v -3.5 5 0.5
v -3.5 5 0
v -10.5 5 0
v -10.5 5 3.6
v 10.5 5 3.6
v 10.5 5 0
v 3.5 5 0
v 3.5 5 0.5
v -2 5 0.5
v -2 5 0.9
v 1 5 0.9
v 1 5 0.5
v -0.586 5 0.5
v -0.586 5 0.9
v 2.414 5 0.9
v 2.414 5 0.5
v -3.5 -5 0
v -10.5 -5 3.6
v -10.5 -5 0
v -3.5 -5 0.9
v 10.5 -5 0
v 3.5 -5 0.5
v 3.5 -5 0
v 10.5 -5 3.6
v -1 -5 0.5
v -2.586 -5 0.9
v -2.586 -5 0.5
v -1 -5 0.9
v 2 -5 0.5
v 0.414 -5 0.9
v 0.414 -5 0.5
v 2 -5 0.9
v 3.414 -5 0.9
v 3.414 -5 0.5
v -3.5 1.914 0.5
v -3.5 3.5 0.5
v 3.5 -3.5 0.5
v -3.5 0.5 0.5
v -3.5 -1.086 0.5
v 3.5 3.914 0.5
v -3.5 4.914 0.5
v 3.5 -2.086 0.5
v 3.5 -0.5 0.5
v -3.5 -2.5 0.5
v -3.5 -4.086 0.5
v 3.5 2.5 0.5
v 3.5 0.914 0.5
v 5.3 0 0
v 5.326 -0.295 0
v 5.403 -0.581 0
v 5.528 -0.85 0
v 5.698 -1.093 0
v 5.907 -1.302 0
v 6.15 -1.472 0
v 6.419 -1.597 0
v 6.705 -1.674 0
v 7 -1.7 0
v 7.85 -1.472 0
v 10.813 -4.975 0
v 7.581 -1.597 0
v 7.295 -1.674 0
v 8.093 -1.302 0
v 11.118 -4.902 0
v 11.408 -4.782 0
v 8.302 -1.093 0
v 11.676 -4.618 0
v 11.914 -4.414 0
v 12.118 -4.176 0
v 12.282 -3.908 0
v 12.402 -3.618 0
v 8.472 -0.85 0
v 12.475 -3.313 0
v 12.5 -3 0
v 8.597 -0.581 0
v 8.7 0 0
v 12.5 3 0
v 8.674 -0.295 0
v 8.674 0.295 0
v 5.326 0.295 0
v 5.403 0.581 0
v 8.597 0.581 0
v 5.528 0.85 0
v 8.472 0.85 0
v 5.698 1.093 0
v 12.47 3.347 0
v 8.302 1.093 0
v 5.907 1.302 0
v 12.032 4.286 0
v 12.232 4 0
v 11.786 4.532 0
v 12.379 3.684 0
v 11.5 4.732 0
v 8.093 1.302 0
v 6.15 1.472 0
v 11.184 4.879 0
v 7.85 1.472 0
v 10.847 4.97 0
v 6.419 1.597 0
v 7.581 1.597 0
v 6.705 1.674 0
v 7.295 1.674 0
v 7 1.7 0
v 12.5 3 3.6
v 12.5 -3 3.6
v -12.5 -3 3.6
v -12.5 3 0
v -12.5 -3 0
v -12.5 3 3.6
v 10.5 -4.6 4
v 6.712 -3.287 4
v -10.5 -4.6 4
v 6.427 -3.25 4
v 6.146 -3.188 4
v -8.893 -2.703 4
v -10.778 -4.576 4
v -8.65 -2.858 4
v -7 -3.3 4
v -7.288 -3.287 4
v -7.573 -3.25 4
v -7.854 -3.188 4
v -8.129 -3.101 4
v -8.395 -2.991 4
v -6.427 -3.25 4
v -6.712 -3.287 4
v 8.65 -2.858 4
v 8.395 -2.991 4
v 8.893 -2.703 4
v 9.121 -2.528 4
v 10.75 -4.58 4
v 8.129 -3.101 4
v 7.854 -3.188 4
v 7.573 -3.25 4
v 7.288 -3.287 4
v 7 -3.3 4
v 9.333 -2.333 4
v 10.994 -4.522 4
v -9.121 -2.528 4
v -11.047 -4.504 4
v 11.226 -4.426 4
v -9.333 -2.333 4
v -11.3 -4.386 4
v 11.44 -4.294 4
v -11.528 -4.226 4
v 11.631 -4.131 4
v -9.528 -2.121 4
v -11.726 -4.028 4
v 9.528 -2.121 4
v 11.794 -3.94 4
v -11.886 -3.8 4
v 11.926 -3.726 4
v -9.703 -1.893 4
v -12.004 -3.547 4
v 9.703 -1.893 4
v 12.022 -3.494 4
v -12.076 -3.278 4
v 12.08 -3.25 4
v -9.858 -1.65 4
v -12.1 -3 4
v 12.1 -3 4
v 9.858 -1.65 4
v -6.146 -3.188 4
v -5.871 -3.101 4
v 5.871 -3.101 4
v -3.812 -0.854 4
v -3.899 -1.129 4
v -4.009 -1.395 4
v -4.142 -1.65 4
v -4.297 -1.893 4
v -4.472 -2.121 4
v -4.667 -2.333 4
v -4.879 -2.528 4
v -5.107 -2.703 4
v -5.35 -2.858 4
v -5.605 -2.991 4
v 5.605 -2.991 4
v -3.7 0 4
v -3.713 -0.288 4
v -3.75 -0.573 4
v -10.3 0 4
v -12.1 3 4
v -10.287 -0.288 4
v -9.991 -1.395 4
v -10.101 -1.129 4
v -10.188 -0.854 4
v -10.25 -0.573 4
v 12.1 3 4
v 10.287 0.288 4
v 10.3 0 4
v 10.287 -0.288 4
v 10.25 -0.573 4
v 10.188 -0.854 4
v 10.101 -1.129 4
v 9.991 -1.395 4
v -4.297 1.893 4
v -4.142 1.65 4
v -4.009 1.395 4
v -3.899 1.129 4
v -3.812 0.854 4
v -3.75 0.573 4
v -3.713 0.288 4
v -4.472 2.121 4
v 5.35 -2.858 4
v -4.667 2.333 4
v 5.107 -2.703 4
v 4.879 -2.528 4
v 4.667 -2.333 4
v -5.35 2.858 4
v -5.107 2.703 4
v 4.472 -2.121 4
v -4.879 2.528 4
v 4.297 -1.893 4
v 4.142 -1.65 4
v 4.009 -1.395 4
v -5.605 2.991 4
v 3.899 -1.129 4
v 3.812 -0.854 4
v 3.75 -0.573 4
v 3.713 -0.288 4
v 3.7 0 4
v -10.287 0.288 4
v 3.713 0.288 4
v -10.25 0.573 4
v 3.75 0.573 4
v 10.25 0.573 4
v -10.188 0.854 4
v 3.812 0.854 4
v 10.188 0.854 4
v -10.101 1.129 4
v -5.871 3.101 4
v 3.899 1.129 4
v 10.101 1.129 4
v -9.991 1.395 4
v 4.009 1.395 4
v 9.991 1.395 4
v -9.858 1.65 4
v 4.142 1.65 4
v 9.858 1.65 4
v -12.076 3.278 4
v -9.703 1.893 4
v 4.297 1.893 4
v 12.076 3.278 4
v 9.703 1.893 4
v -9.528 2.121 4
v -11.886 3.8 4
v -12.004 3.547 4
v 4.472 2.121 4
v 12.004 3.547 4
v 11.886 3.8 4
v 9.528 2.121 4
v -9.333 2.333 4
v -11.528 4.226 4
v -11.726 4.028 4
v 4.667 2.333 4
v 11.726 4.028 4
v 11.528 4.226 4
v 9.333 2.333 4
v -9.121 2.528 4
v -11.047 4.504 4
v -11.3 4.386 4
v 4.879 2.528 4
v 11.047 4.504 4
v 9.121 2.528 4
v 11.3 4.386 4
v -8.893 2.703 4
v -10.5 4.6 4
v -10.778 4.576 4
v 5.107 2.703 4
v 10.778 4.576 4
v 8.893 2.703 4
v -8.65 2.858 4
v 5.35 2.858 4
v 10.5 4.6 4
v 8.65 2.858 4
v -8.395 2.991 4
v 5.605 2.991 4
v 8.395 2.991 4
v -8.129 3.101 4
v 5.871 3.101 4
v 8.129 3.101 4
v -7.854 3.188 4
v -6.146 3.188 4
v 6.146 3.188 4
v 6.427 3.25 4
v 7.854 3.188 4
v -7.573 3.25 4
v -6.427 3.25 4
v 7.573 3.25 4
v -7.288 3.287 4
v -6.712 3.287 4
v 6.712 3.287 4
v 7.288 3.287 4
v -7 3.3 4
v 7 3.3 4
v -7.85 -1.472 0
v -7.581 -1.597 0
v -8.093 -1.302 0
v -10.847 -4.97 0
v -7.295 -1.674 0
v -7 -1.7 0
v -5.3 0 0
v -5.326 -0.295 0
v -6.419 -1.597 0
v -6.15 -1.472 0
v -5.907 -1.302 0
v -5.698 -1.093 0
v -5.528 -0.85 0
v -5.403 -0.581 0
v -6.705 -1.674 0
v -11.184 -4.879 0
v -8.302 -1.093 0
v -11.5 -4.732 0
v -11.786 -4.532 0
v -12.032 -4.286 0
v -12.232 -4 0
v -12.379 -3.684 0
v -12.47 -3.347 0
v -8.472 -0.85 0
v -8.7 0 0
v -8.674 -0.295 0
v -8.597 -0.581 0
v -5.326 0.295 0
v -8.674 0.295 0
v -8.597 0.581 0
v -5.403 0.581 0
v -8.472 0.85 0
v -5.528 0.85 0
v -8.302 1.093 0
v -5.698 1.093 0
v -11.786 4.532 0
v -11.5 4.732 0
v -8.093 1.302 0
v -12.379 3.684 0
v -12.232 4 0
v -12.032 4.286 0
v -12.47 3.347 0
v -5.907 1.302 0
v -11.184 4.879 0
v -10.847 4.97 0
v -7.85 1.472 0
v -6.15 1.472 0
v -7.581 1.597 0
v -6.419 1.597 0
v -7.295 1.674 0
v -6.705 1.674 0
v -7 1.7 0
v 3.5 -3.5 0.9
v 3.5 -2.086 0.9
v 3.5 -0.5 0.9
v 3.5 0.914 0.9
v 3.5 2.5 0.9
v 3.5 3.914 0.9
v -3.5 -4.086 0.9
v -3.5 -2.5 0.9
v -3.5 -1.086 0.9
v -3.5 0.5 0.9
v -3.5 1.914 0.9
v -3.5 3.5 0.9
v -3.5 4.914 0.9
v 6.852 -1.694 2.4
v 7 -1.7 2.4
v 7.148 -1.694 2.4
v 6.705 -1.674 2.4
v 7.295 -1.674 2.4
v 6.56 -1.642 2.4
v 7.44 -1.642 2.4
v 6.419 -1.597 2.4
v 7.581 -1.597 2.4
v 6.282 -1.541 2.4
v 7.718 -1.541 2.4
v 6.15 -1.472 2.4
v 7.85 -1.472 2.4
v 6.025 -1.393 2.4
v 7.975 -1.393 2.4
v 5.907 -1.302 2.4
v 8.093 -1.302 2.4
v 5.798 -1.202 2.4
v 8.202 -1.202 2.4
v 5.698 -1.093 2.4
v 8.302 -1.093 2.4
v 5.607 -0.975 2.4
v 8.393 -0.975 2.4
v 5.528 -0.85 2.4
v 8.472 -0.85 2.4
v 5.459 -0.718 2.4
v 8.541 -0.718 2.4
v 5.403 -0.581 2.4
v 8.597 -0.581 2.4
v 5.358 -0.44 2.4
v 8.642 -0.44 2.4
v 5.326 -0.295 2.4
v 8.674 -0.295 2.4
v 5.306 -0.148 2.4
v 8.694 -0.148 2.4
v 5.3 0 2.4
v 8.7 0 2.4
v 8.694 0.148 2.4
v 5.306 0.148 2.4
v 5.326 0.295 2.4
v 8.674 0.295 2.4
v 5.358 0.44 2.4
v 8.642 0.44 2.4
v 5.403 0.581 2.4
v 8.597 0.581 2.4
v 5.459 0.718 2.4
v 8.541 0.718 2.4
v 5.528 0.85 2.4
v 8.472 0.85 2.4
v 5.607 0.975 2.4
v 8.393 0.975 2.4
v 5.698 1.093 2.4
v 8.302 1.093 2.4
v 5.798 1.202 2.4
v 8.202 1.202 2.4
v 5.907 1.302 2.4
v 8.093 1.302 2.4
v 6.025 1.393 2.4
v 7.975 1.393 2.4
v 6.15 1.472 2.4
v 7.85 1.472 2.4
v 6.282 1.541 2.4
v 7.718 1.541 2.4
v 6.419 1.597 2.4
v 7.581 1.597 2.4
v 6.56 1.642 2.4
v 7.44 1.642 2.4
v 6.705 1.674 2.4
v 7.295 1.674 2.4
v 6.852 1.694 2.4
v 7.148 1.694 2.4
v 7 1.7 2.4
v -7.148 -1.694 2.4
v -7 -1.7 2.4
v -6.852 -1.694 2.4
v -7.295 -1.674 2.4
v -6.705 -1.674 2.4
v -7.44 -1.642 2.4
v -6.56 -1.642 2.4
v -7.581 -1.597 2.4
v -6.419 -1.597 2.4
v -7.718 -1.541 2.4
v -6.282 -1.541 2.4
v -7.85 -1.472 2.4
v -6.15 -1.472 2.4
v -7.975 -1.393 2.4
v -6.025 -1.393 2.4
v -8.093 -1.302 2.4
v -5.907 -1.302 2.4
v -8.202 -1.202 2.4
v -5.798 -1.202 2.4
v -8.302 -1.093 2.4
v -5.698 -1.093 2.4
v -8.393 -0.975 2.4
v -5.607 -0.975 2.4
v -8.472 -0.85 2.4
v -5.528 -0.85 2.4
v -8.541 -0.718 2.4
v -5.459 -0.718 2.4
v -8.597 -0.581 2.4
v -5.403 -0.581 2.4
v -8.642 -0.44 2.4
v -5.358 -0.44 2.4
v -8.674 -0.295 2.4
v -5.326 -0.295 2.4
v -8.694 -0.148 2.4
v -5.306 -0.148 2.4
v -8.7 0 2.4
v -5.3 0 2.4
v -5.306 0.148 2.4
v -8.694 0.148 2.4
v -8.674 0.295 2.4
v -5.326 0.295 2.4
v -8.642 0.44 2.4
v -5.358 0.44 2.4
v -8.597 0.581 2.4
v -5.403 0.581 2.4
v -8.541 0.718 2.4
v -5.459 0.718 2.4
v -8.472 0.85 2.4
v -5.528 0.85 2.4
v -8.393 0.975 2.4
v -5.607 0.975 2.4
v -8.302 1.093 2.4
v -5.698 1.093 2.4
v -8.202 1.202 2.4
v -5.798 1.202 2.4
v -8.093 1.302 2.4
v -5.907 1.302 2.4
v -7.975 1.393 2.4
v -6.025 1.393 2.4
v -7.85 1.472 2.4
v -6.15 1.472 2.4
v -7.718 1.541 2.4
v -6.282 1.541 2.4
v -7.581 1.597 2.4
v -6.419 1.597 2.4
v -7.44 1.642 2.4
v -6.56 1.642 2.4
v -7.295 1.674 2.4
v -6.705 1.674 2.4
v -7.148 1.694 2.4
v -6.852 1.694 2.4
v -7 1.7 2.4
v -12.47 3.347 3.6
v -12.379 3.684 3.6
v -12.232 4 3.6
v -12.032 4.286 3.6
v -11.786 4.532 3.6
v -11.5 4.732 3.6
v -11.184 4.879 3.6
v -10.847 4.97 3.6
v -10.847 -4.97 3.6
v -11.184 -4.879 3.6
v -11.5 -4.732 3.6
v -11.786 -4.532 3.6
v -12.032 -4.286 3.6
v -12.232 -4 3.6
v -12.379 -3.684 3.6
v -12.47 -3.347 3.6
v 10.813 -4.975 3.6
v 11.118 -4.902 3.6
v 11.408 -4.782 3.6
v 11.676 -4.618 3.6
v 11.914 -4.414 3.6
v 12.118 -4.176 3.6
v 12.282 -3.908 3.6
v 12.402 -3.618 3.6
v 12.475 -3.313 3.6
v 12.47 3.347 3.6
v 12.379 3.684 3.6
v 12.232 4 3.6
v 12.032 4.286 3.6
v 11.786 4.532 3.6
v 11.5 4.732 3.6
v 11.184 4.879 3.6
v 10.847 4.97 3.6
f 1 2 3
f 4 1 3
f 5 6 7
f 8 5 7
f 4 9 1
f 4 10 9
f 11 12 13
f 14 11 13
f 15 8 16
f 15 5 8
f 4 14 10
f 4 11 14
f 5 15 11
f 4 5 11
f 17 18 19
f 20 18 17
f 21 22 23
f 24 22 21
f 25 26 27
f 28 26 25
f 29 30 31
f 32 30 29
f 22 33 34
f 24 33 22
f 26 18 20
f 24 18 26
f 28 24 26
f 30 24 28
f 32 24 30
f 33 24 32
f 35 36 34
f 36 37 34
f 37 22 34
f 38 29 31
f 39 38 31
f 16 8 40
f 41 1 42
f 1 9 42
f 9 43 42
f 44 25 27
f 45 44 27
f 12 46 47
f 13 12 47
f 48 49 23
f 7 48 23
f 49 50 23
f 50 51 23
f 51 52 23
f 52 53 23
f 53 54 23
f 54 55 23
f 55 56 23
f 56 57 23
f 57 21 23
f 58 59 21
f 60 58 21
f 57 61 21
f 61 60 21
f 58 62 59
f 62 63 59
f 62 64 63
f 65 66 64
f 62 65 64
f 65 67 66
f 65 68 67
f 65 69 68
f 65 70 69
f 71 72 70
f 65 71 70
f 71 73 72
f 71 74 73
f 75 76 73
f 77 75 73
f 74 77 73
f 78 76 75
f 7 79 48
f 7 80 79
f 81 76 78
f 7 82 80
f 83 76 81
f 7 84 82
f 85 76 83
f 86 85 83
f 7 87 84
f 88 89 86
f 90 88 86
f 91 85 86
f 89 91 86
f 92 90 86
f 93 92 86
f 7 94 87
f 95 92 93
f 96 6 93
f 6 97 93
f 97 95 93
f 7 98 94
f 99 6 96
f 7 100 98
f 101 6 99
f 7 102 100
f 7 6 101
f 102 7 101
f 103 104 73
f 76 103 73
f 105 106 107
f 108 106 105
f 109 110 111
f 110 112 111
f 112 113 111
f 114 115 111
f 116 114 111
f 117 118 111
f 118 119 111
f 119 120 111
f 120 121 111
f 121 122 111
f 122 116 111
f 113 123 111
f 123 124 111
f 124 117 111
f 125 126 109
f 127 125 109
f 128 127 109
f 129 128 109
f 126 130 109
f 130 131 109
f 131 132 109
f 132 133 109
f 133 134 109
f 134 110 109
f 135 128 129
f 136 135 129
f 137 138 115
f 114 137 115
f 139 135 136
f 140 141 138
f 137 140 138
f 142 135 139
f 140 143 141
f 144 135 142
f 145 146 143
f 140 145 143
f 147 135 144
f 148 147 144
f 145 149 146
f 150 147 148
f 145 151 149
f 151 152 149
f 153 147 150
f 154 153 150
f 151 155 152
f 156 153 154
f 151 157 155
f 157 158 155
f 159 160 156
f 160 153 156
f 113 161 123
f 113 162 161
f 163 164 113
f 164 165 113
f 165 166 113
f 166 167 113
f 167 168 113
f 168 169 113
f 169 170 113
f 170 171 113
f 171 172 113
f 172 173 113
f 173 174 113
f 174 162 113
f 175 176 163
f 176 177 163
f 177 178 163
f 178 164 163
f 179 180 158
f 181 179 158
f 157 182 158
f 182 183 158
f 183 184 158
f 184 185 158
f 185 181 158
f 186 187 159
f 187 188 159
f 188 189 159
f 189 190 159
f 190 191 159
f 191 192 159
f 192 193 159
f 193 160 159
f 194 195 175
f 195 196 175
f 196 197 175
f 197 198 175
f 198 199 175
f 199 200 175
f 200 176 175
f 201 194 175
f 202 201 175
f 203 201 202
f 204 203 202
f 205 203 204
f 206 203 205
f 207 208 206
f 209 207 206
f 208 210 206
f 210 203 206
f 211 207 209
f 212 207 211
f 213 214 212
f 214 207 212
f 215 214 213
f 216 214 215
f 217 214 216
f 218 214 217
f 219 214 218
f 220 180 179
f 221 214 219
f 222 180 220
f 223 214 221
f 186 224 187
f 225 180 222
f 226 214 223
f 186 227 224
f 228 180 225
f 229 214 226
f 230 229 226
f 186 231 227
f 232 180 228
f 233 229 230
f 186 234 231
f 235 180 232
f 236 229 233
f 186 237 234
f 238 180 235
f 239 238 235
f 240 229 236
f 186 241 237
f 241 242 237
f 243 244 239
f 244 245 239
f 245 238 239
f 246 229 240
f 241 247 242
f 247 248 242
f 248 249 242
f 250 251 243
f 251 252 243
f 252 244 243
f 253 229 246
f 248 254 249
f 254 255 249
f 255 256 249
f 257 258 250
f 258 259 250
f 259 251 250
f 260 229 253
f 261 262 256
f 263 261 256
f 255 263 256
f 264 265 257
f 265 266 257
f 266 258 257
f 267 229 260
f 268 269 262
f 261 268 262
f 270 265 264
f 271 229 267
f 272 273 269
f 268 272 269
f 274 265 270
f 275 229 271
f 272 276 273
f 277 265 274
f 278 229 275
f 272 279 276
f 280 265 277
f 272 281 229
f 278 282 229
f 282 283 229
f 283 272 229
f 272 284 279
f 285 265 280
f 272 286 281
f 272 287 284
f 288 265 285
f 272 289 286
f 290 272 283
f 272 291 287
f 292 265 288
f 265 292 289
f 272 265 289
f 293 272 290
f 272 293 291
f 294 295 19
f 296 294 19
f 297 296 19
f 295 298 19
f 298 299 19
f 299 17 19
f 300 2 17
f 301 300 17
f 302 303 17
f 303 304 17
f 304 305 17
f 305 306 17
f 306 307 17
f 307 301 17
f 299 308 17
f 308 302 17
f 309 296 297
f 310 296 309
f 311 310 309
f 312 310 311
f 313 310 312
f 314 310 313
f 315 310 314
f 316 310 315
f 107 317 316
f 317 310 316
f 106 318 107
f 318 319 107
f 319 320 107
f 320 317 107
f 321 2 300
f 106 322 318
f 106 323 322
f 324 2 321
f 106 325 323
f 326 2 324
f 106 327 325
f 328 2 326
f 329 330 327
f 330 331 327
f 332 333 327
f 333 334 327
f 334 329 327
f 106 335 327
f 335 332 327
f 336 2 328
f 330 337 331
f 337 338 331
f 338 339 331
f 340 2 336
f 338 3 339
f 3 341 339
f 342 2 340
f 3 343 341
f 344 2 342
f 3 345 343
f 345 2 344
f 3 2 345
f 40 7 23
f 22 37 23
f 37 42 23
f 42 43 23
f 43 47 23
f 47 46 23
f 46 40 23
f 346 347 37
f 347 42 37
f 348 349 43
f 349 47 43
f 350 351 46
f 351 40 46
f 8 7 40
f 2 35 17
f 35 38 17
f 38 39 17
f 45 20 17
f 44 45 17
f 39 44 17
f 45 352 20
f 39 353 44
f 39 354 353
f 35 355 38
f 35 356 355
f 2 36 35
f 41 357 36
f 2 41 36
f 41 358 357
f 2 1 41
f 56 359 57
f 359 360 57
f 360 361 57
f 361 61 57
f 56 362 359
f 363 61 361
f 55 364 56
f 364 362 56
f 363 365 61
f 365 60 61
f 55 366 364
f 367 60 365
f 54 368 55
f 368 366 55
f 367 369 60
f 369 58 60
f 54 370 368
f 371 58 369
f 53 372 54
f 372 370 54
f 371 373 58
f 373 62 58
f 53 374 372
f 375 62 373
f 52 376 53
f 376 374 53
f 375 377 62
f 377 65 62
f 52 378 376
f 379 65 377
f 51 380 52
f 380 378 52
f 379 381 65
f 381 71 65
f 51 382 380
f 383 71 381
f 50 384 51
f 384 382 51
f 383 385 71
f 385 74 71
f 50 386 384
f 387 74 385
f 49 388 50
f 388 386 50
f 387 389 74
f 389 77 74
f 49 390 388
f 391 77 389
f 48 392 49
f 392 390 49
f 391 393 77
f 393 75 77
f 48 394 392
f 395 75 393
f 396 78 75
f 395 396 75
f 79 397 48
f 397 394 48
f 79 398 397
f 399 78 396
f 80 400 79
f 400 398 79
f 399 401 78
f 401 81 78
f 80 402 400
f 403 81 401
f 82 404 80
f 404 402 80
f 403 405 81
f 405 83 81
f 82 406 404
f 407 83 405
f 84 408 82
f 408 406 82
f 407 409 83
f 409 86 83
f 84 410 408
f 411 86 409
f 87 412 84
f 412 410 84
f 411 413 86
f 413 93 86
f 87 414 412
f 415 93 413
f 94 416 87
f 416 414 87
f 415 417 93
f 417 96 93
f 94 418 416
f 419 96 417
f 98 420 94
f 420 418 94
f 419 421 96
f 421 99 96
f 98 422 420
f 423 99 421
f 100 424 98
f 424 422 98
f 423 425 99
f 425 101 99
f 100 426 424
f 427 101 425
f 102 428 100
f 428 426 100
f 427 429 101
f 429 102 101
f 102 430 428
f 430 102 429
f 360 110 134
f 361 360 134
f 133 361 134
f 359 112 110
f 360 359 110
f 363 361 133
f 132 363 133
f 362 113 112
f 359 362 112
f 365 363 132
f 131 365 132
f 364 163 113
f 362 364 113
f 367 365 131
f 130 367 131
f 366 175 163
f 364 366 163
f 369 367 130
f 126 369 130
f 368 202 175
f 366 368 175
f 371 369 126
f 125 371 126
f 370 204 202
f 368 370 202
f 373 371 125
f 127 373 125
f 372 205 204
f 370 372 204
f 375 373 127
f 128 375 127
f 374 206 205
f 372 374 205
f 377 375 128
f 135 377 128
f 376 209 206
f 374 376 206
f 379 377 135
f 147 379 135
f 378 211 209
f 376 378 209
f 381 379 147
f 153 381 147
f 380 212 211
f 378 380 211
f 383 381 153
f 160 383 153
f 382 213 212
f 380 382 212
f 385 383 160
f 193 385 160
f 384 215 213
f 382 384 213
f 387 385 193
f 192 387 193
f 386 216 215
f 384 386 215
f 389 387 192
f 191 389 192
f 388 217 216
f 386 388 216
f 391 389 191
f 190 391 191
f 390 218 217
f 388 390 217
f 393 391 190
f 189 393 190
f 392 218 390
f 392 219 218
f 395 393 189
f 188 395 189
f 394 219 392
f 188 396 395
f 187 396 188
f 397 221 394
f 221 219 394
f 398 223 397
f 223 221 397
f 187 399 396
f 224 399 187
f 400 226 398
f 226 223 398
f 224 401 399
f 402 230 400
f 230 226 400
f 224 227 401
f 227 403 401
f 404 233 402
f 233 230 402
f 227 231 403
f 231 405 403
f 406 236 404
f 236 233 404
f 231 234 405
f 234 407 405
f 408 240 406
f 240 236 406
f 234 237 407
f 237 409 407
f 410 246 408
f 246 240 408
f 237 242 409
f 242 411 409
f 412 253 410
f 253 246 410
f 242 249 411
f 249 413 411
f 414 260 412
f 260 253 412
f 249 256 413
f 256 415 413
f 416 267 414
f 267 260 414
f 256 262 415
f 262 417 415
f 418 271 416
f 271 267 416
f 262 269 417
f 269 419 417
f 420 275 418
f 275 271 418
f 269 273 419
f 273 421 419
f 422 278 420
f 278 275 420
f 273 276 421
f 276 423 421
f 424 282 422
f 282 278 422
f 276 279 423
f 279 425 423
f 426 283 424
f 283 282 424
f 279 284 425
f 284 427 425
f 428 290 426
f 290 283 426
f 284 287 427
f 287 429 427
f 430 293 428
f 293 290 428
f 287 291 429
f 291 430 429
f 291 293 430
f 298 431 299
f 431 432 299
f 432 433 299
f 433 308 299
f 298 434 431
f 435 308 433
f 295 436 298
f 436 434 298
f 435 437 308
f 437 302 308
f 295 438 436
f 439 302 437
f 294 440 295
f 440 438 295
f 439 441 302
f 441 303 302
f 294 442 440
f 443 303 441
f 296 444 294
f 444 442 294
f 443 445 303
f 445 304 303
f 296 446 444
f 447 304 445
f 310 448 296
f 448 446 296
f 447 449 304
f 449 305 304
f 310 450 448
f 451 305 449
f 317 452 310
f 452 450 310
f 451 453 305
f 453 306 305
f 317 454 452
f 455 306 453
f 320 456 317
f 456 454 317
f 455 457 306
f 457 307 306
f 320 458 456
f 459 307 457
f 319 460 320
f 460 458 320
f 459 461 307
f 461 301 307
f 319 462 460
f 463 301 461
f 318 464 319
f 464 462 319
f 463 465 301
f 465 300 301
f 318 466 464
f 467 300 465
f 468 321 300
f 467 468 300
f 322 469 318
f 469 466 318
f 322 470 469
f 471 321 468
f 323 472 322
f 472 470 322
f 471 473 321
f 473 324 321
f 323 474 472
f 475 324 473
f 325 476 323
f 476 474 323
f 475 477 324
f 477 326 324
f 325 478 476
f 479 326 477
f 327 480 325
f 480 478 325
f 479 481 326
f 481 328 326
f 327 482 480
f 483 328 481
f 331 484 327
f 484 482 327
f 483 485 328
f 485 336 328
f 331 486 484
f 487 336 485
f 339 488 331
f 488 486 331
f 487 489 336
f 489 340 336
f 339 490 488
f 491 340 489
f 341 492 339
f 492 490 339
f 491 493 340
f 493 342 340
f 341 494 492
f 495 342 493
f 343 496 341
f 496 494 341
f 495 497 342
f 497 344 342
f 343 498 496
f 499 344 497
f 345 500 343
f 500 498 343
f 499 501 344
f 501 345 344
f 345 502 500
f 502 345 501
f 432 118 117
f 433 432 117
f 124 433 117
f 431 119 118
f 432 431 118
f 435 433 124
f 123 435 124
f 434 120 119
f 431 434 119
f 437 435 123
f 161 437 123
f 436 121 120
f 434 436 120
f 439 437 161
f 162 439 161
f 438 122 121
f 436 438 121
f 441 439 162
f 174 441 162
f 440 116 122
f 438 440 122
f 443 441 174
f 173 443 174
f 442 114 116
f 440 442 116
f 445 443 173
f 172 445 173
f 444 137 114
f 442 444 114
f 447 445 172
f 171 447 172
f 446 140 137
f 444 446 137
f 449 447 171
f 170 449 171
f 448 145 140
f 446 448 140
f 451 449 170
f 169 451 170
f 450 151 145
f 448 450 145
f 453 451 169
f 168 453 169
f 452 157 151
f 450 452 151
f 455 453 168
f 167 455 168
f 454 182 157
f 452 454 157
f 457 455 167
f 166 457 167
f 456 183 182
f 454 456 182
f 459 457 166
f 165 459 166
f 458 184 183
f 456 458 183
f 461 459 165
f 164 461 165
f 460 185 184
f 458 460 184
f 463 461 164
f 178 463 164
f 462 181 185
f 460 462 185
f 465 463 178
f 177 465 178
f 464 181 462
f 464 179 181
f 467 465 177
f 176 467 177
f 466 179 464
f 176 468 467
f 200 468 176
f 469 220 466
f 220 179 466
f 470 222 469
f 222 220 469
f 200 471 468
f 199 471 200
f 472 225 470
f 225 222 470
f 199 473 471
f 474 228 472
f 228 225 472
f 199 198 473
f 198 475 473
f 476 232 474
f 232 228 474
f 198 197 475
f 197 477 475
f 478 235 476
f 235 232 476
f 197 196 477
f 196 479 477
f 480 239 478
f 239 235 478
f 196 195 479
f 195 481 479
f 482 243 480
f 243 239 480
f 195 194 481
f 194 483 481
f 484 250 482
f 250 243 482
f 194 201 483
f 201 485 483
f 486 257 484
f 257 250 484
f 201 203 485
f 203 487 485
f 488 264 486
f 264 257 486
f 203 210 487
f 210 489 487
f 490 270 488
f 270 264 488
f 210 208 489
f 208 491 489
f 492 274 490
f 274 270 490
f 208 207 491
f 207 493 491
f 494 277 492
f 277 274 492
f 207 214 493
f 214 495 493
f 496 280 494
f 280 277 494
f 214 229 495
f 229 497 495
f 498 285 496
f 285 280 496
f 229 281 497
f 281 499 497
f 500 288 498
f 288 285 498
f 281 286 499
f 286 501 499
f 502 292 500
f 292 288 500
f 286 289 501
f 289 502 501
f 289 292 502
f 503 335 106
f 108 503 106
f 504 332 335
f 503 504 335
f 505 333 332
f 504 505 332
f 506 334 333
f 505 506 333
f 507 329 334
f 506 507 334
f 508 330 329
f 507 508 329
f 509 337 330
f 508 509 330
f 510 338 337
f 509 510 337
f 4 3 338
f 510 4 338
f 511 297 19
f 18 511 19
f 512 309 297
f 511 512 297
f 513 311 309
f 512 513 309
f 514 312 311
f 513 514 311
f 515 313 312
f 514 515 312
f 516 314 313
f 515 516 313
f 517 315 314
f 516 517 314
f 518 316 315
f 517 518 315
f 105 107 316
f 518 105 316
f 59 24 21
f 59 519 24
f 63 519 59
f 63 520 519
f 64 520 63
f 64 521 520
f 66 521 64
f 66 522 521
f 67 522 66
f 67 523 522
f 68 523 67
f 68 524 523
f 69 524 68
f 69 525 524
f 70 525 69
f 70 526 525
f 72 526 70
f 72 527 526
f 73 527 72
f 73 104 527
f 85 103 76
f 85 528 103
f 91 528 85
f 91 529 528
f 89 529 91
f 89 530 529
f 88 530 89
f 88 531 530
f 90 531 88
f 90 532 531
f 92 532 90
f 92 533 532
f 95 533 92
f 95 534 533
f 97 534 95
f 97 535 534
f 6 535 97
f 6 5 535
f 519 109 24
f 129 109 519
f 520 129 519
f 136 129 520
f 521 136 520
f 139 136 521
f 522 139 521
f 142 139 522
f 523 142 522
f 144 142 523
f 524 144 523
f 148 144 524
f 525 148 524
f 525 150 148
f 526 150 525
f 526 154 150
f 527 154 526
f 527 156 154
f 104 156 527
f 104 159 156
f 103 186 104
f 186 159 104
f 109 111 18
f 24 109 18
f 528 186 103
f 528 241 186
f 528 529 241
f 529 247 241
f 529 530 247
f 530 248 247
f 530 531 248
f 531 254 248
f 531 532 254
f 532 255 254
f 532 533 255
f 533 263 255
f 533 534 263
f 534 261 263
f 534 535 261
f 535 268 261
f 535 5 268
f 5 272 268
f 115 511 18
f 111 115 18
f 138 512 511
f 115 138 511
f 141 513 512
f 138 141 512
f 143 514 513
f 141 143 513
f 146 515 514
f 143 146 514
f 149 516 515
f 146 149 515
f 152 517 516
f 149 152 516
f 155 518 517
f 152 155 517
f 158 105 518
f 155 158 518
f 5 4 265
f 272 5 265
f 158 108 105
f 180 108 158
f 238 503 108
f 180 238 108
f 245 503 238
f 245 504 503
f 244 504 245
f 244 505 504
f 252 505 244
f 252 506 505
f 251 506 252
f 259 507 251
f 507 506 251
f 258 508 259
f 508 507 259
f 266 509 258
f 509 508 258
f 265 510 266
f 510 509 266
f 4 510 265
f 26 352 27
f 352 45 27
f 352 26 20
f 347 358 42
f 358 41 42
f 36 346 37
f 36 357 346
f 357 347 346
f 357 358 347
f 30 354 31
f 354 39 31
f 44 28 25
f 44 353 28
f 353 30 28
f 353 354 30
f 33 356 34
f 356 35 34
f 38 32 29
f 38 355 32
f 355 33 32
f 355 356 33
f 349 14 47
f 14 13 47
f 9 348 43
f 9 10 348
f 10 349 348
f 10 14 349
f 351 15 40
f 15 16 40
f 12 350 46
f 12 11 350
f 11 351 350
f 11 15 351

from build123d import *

# Parameters (mm, degrees)
SKETCH_1_W                   = 25
SKETCH_1_H                   = 10
EXTRUDE_1_DEPTH              = 4
SKETCH_2_W                   = 7
SKETCH_2_H                   = 1
CUT_EXTRUDE_1_DEPTH          = 17.5
HOLE_WIZARD_M3_1_D           = 3.4
HOLE_WIZARD_M3_1_CSINK_D     = 6.6
HOLE_WIZARD_M3_1_CSINK_ANGLE = 90
FILLET_1_R                   = 2
CHAMFER_1_SIZE               = 0.4
CUT_EXTRUDE_2_DEPTH          = 0.4


with BuildPart() as part:
    # 草图1 → 凸台-拉伸1 (new body)
    with BuildSketch(Plane.XY):
        Rectangle(SKETCH_1_W, SKETCH_1_H)
    extrude(amount=EXTRUDE_1_DEPTH)

    # 草图2 → 切除-拉伸1 (cut, through all)
    with BuildSketch(Plane(origin=(0, 5, 0), x_dir=(1, 0, 0), z_dir=(0, 1, 0))):
        Rectangle(SKETCH_2_W, SKETCH_2_H)
    extrude(amount=-CUT_EXTRUDE_1_DEPTH, mode=Mode.SUBTRACT)

    # M3 十字槽沉头木螺钉的锥形沉头孔1 (through all)
    with Locations(Plane.XY.offset(4)):
        with Locations((7, 0)):
            hole_wizard_m3_1 = CounterSinkHole(HOLE_WIZARD_M3_1_D / 2, HOLE_WIZARD_M3_1_CSINK_D / 2, counter_sink_angle=HOLE_WIZARD_M3_1_CSINK_ANGLE)

    # 镜向1: M3 十字槽沉头木螺钉的锥形沉头孔1 across plane
    add(hole_wizard_m3_1.mirror(Plane(origin=(0, 0, 0), x_dir=(0, 0, 1), z_dir=(1, 0, 0))), mode=Mode.SUBTRACT)

    # 圆角1
    fillet_1_edges = [part.edges().sort_by_distance(p)[0] for p in [
        (12.5, -5, 2),
        (-12.5, -5, 2),
        (-12.5, 5, 2),
        (12.5, 5, 2),
    ]]
    fillet(fillet_1_edges, radius=FILLET_1_R)

    # 倒角1
    chamfer_1_edges = [part.edges().sort_by_distance(p)[0] for p in [
        (-12.5, 0, 4),
        (0, 5, 4),
        (12.5, 0, 4),
        (0, -5, 4),
        (11.914213562, 4.414213562, 4),
        (11.914213562, -4.414213562, 4),
        (-11.914213562, -4.414213562, 4),
        (-11.914213562, 4.414213562, 4),
    ]]
    chamfer(chamfer_1_edges, length=CHAMFER_1_SIZE)

    # 草图5 → 切除-拉伸2 (cut)
    with BuildSketch(Plane(origin=(0, 0, 0.5), x_dir=(-1, 0, 0), z_dir=(0, 0, -1))):
        Polygon((-3.5, -2.085786438), (-3.5, -3.5), (3.5, 3.5), (3.5, 4.914213562), align=None)
        Polygon((3.5, 0.5), (3.5, 1.914213562), (-3.414213562, -5), (-2, -5), align=None)
        Polygon((-3.5, 0.914213562), (-3.5, -0.5), (2, 5), (0.585786438, 5), align=None)
        Polygon((3.5, -2.5), (3.5, -1.085786438), (-0.414213562, -5), (1, -5), align=None)
        Polygon((-3.5, 3.914213562), (-3.5, 2.5), (-1, 5), (-2.414213562, 5), align=None)
        Polygon((3.5, -5), (3.5, -4.085786438), (2.585786438, -5), align=None)
    extrude(amount=-CUT_EXTRUDE_2_DEPTH, mode=Mode.SUBTRACT)


solid = part.part
